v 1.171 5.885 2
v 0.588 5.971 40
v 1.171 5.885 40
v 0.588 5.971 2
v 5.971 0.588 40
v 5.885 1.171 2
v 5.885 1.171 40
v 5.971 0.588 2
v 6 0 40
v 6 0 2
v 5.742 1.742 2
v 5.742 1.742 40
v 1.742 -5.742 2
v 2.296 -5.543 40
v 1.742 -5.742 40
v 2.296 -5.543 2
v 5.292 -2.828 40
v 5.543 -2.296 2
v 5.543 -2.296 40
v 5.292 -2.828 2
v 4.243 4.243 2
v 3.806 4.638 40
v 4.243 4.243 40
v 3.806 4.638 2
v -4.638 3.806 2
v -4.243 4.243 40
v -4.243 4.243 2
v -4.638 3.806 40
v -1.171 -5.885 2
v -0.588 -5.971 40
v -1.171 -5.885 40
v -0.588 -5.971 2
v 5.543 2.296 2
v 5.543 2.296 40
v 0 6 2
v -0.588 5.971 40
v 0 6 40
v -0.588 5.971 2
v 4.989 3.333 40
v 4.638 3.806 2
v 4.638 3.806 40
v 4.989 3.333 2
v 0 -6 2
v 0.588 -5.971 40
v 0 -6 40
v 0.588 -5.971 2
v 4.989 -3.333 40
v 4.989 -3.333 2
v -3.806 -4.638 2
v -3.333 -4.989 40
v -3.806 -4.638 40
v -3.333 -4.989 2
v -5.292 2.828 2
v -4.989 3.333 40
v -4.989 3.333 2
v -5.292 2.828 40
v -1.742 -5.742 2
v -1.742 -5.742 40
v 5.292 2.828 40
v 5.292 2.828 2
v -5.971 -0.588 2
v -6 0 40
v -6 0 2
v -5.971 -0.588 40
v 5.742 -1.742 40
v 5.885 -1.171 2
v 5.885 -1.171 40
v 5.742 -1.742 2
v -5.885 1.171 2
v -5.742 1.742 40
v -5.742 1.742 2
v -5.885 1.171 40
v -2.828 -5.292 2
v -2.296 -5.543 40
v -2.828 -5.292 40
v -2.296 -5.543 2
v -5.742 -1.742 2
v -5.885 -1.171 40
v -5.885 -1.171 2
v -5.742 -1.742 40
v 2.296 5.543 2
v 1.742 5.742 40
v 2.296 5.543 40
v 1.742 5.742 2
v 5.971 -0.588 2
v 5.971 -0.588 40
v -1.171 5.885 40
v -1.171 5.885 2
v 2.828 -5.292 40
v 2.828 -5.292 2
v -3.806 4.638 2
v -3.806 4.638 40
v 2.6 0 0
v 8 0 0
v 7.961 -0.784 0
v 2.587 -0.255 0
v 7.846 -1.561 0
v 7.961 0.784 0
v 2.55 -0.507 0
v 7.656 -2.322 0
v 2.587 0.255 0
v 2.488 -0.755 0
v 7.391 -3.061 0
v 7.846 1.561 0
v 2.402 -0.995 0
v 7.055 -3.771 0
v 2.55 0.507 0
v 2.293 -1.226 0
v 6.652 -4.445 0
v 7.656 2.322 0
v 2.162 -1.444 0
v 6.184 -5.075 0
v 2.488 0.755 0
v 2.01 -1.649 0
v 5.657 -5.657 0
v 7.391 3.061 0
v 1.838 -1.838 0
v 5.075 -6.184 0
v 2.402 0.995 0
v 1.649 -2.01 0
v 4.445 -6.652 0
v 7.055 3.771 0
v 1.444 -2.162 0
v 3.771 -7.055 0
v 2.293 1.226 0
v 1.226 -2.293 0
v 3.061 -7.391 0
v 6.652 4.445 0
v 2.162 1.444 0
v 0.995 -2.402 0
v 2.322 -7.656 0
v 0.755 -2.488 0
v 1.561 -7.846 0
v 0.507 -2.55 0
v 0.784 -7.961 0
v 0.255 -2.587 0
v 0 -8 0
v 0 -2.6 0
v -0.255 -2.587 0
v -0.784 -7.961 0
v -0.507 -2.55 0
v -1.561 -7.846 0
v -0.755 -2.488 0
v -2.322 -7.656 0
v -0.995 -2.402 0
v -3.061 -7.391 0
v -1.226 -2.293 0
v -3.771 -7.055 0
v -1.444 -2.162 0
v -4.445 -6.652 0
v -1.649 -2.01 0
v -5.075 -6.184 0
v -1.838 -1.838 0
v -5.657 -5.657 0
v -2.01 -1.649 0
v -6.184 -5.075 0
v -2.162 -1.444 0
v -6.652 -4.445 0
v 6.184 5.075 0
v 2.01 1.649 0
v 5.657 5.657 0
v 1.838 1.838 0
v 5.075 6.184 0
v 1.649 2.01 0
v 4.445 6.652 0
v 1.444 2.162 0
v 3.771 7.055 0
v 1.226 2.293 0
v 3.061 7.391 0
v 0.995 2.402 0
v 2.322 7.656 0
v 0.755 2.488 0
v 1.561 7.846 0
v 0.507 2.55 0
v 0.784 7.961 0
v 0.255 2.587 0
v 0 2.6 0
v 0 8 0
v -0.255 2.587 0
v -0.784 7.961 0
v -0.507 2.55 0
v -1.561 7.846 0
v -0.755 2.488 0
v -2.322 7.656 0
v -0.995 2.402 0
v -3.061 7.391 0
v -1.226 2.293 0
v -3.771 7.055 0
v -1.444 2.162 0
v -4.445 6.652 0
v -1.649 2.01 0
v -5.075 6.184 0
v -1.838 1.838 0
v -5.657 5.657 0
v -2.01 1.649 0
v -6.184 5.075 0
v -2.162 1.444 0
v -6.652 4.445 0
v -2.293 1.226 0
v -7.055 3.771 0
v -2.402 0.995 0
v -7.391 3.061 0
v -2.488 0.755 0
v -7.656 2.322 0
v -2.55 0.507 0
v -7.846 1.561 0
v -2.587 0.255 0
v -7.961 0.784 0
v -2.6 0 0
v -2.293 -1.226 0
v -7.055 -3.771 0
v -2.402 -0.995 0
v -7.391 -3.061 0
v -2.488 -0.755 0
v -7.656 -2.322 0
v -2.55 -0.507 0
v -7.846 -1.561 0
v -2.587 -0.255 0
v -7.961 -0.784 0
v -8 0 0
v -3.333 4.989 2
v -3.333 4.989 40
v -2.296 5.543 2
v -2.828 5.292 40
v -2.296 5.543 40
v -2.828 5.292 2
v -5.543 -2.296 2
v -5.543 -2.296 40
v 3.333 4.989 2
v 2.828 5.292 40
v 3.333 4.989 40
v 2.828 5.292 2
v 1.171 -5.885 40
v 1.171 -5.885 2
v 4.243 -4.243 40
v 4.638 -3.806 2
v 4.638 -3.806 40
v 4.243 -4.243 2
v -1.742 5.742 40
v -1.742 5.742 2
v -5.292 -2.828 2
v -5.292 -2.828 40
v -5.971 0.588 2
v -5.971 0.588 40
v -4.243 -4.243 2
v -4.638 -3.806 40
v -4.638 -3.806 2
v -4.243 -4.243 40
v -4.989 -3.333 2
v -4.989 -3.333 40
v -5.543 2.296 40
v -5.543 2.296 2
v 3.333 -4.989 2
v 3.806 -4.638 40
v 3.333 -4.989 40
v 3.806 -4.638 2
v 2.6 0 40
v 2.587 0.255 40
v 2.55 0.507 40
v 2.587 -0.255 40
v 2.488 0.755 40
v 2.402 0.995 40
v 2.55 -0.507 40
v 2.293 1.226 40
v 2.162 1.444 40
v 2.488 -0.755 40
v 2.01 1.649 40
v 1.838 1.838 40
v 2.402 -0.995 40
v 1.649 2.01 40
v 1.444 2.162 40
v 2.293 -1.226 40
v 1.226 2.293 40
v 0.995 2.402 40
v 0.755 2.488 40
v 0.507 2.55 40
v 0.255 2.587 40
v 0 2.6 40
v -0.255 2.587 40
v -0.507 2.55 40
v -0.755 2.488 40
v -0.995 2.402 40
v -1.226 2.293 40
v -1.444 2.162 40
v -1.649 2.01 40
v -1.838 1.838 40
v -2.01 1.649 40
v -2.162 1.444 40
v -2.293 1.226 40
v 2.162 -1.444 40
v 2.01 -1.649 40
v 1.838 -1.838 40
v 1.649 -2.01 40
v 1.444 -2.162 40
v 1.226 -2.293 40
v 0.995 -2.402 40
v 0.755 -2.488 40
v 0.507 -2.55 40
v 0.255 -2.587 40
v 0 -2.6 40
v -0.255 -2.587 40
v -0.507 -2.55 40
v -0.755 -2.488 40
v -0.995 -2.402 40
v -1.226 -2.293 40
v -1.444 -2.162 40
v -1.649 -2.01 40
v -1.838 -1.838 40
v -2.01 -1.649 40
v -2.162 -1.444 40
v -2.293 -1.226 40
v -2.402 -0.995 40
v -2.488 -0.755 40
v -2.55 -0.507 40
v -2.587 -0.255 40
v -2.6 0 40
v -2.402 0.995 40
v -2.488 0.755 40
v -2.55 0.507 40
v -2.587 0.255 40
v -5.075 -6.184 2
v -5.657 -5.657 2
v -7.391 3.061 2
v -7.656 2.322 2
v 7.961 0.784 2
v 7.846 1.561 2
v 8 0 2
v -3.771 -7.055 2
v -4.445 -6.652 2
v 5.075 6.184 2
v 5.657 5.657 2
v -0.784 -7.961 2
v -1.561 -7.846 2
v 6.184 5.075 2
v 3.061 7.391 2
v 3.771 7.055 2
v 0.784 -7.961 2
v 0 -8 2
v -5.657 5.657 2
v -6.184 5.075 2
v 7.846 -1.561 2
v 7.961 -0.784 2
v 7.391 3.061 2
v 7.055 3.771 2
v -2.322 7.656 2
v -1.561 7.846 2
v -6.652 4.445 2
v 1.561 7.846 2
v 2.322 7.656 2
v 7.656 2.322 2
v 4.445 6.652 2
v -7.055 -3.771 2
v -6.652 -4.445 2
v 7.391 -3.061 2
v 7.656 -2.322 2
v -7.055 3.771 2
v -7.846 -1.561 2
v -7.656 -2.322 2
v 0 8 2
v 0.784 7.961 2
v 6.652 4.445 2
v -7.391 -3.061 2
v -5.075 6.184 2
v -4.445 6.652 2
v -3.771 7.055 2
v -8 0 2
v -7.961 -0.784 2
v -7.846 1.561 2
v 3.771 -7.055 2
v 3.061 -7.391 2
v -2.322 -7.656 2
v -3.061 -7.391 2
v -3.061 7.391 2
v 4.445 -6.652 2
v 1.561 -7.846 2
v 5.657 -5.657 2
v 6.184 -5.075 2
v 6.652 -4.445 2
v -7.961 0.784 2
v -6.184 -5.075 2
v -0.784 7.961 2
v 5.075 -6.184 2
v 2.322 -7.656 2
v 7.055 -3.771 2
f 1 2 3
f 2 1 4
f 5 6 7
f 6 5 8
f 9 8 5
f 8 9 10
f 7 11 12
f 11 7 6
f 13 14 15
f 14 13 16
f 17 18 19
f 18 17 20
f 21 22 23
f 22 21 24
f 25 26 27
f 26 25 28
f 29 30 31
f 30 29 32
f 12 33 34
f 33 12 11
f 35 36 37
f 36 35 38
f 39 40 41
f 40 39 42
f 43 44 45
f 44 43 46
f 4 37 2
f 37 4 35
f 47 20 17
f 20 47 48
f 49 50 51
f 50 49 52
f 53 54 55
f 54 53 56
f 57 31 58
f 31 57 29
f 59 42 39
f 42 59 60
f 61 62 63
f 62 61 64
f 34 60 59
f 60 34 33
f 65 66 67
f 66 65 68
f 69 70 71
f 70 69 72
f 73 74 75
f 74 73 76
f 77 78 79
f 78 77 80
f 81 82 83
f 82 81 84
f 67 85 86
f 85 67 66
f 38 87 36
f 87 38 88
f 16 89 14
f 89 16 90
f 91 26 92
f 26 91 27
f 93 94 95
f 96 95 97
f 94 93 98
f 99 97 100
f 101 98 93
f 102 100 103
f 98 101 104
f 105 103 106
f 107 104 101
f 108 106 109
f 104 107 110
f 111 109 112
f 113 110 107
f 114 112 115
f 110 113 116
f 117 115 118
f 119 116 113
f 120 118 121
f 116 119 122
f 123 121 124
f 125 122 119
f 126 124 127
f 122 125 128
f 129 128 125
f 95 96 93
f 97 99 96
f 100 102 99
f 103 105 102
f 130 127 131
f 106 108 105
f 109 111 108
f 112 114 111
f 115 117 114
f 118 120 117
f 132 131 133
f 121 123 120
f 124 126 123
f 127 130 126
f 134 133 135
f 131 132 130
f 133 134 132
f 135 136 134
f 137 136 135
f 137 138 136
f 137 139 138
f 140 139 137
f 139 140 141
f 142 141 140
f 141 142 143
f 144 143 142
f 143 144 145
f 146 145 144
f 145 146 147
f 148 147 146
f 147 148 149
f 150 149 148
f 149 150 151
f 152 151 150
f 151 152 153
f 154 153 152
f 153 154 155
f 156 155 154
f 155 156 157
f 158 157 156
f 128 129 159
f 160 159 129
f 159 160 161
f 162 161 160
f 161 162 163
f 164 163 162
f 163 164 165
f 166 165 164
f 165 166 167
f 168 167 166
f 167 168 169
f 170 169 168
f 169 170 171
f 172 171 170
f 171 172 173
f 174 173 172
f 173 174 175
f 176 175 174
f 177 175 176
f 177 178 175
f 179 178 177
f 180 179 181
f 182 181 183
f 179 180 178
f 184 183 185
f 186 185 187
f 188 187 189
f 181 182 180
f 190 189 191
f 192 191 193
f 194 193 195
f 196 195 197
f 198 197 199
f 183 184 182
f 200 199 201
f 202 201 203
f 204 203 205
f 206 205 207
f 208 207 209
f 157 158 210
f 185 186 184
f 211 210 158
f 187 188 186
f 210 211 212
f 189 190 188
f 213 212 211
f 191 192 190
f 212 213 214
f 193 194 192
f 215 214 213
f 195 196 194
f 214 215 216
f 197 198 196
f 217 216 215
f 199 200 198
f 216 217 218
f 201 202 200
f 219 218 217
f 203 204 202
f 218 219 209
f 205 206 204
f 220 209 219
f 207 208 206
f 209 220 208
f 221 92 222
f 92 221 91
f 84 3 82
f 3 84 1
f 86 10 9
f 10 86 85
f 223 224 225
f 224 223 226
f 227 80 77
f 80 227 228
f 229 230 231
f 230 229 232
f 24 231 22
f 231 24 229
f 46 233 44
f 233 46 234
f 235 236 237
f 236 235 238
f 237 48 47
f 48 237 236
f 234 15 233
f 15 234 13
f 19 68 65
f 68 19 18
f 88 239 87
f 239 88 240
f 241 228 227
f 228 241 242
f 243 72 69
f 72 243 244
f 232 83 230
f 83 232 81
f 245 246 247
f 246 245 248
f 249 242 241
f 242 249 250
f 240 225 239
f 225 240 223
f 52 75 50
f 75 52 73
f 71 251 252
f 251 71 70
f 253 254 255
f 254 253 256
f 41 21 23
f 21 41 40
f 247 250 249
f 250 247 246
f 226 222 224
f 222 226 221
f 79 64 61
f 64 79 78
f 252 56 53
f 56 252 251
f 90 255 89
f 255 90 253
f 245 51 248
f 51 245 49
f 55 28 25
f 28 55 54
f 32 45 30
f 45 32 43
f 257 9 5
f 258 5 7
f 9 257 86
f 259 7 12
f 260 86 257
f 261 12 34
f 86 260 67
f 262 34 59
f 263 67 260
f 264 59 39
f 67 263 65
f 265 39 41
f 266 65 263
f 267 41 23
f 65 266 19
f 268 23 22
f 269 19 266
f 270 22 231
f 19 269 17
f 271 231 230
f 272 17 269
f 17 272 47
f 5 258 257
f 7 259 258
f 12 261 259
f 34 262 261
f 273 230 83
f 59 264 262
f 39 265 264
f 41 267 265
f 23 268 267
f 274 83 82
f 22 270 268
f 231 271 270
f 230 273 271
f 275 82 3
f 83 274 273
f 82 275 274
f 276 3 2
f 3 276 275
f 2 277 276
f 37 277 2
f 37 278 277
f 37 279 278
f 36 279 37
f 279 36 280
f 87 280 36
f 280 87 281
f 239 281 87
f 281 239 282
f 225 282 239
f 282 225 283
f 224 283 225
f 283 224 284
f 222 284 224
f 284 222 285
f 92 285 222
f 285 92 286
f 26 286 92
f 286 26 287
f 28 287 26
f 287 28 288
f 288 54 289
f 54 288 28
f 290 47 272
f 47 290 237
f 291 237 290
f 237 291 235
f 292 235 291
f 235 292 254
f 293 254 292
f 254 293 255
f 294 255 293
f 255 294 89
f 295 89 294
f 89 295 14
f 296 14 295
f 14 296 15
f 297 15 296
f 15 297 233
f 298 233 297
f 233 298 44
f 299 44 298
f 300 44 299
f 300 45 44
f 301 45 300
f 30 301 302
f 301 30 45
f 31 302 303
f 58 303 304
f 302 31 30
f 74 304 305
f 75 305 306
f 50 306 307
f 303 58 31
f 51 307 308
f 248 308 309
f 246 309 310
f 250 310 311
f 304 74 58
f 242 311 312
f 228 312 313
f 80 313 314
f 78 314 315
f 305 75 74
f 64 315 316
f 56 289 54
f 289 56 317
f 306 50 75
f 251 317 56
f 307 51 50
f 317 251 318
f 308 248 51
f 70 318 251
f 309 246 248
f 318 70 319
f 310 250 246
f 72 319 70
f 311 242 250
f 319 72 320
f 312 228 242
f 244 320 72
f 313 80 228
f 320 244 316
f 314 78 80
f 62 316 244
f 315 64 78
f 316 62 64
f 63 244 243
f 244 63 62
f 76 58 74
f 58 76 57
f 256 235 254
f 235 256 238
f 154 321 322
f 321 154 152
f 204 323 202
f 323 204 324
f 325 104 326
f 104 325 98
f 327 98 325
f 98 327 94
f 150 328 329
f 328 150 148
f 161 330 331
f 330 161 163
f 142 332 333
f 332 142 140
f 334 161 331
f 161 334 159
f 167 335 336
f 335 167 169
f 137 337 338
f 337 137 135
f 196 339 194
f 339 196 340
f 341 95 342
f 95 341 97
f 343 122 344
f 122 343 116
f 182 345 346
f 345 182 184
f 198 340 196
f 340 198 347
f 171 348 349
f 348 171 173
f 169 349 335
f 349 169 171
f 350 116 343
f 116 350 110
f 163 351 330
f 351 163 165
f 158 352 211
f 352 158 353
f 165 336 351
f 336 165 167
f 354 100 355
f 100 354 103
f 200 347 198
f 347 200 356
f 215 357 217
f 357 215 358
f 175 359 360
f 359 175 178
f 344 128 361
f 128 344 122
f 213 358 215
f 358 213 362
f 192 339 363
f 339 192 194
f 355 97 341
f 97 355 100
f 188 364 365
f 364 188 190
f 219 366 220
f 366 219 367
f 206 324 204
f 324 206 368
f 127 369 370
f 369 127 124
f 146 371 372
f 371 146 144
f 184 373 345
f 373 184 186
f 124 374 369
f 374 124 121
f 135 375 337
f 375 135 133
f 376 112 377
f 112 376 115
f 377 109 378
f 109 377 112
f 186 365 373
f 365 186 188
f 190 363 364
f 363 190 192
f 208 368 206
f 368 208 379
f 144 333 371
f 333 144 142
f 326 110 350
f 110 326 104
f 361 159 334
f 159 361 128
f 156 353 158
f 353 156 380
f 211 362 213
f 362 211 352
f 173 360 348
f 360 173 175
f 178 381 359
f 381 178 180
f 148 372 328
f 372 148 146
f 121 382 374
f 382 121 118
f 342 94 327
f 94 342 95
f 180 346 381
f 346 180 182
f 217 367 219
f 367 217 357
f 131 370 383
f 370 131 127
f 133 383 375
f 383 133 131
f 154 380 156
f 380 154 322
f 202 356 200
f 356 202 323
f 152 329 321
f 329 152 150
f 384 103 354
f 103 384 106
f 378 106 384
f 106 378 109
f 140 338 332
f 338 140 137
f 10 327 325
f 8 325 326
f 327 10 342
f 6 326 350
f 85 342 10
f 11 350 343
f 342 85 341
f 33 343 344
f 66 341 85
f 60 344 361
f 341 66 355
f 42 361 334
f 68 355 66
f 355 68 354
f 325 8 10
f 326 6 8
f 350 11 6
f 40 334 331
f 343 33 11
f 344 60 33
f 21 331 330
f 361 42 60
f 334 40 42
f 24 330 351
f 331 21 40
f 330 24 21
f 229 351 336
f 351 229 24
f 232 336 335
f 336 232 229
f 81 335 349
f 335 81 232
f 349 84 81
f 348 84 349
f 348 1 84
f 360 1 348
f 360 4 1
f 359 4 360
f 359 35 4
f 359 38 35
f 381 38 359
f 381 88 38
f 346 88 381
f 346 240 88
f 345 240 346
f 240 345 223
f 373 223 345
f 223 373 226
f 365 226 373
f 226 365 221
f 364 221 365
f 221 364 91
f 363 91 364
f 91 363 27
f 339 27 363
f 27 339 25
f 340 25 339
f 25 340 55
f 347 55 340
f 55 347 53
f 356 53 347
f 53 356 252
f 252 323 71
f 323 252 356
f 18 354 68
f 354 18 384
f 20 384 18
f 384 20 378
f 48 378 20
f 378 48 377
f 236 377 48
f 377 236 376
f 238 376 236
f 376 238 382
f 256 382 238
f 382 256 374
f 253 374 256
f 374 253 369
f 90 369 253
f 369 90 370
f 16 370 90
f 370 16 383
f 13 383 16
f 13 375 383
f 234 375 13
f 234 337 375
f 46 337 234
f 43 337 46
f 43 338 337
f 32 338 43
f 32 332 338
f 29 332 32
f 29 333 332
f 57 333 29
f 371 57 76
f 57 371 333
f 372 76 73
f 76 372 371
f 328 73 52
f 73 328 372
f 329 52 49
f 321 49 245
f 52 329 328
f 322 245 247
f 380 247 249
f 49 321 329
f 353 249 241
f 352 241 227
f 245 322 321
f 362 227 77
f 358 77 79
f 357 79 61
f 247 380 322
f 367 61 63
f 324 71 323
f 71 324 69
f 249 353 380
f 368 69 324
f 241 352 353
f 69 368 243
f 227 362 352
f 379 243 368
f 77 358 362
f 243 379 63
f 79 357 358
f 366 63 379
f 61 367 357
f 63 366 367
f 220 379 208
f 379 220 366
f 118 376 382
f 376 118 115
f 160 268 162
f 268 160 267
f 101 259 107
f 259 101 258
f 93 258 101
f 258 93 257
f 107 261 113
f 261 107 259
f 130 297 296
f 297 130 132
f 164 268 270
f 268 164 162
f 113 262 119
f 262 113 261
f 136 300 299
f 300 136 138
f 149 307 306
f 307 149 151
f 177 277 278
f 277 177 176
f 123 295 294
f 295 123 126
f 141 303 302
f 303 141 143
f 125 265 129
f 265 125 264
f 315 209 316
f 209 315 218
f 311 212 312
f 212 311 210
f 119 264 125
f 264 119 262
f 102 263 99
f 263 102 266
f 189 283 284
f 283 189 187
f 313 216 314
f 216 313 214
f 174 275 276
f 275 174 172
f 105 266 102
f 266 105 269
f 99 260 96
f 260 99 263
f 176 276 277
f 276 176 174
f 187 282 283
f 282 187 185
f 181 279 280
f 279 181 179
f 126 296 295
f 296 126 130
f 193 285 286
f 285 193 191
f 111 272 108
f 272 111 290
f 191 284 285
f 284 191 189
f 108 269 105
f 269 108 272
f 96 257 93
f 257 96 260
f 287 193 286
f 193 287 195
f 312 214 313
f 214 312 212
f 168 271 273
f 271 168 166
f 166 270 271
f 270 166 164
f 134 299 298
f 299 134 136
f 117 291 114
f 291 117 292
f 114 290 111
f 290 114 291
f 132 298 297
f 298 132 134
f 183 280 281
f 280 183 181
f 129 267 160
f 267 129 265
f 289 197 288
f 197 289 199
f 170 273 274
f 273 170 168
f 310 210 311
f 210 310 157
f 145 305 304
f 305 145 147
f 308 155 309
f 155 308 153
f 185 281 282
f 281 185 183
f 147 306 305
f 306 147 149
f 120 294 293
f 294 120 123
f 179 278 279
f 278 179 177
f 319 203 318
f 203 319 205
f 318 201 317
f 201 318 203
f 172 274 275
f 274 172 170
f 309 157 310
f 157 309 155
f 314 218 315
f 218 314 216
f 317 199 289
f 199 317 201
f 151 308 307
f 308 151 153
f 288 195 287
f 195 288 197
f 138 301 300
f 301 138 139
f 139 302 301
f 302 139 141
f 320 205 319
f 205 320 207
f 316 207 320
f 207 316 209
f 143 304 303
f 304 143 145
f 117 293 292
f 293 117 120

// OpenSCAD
// file: parameters.scad
// AFPM-Desk-v1 shared parameters (mm)
// Desktop axial-flux PM learning generator — Faraday induction education only.

$fn = 64;

// --- Magnets (N42 Neo discs) ---
magnet_d = 20;
magnet_h = 3;
magnet_count = 8;
magnet_pcd = 70; // pitch circle diameter

// --- Rotor ---
rotor_od = 100;
rotor_id = 12; // shaft clearance / hub seat
rotor_thickness = 6;
magnet_pocket_clearance = 0.3;
magnet_pocket_depth = magnet_h + 0.2;

// --- Stator ---
stator_od = 110;
stator_id = 30;
stator_thickness = 8;
coil_count = 6;
coil_slot_w = 22;
coil_slot_h = 18;
coil_slot_depth = 6;
coil_pcd = 70;

// --- Shaft / bearings ---
shaft_d = 8;
bearing_od = 22; // 608 skate bearing
bearing_id = 8;
bearing_h = 7;
bearing_seat_od = bearing_od + 0.2;

// --- Base ---
base_w = 160;
base_d = 140;
base_h = 8;
post_h = 55;

// --- Crank ---
crank_arm_len = 80;
crank_arm_w = 16;
crank_arm_t = 8;
handle_d = 12;
handle_len = 40;

// --- Electronics tray ---
tray_w = 70;
tray_d = 50;
tray_h = 12;
// main file
include <parameters.scad>

module crank_handle() {
  difference() {
    union() {
      cylinder(h=handle_len, d=handle_d);
      // flange
      cylinder(h=2, d=handle_d + 4);
    }
    translate([0,0,-0.1])
      cylinder(h=handle_len+0.2, d=5.2); // M5 bolt axle
  }
}

crank_handle();
